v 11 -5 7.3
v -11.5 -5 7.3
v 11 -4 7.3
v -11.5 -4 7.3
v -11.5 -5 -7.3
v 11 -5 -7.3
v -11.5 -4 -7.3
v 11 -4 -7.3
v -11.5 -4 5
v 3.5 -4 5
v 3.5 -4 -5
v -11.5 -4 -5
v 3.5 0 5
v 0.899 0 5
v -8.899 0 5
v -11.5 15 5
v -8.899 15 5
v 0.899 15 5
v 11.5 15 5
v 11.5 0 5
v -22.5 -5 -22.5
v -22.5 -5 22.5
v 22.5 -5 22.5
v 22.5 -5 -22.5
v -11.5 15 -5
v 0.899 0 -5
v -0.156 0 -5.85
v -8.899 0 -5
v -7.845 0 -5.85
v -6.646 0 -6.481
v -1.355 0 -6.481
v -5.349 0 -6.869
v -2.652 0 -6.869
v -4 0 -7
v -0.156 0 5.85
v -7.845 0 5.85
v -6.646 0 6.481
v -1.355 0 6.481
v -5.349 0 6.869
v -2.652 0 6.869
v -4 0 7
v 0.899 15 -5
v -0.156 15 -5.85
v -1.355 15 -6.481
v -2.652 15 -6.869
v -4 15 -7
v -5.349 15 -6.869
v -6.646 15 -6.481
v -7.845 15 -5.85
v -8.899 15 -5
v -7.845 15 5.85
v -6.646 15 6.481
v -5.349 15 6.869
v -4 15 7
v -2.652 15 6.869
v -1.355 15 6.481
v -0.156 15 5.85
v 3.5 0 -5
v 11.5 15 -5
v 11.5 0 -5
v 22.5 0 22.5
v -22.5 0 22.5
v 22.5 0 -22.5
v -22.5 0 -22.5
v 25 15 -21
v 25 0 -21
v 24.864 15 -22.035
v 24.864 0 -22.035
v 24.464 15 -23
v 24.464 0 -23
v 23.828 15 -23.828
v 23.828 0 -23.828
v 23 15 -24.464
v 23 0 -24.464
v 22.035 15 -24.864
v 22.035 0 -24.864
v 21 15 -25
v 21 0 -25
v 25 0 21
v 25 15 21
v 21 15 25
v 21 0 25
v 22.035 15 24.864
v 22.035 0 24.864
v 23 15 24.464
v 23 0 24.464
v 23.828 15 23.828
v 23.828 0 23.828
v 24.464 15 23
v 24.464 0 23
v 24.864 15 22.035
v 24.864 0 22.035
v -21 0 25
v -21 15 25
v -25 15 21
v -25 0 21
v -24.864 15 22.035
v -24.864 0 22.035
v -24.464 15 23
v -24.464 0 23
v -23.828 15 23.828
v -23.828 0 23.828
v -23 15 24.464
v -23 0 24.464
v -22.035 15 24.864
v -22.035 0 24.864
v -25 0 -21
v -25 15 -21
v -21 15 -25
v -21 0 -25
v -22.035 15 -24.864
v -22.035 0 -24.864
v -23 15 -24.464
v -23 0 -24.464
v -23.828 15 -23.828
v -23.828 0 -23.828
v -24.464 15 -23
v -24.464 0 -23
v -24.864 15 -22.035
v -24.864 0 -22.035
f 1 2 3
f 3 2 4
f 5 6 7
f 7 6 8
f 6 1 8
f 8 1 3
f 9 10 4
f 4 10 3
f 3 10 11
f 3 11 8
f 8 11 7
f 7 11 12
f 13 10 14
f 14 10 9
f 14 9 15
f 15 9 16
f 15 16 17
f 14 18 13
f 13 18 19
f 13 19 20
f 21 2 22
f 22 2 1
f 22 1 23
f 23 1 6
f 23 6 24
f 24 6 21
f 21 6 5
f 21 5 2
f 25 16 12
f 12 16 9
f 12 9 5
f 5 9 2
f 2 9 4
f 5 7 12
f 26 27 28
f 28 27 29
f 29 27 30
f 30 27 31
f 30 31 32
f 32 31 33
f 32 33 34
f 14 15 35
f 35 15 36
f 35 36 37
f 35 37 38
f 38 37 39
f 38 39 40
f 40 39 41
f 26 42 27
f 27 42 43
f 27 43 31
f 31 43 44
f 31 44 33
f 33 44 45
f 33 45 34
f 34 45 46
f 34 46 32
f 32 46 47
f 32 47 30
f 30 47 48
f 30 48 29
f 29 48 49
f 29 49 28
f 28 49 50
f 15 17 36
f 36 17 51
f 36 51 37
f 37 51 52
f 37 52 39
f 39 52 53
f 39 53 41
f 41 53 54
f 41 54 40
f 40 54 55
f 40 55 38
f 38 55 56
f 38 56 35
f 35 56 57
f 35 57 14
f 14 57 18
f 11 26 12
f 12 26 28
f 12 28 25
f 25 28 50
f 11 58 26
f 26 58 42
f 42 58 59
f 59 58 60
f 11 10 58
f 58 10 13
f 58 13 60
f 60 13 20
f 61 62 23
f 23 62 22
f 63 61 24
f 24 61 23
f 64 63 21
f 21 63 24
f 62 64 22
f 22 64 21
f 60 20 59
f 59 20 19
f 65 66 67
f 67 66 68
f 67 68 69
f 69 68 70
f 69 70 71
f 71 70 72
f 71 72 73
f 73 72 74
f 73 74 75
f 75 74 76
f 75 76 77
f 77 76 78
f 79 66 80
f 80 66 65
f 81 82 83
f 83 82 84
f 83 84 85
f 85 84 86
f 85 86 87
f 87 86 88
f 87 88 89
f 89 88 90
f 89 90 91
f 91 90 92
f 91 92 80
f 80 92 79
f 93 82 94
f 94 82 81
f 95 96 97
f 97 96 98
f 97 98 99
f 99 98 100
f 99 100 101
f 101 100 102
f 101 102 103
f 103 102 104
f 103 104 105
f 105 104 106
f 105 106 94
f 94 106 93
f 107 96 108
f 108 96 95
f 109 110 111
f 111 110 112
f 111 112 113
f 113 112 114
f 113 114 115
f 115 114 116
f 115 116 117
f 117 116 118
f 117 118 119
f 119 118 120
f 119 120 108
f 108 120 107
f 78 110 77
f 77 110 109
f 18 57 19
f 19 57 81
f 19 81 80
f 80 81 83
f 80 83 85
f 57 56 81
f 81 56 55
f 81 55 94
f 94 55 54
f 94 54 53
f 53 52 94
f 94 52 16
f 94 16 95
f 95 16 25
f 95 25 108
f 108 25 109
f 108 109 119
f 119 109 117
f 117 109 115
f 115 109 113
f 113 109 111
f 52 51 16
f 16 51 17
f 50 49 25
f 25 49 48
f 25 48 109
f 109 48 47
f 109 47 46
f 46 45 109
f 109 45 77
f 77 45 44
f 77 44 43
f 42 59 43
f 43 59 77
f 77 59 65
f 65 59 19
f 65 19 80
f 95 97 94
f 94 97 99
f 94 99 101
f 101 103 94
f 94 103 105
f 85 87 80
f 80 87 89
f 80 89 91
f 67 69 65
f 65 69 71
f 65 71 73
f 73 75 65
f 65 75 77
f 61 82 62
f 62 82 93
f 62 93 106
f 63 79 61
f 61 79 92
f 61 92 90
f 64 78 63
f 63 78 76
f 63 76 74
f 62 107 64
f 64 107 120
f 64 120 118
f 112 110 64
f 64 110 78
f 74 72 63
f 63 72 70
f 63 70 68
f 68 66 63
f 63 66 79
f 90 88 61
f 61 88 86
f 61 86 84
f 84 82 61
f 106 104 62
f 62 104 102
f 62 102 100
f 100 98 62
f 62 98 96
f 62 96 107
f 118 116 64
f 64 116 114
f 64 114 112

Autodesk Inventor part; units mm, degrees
ref_plane "YZ Plane" through (0, 0, 0) normal (1, 0, 0) x (0, 1, 0)
ref_plane "XZ Plane" through (0, 0, 0) normal (0, 1, 0) x (-1, 0, 0)
ref_plane "XY Plane" through (0, 0, 0) normal (0, 0, 1) x (1, 0, 0)
sketch "Эскиз1" plane through (0, 0, 0) normal (0, 1, 0) x (-1, 0, 0)
  line L0 (-21, 25) -> (21, 25)
  line L1 (25, 21) -> (25, -21)
  line L2 (21, -25) -> (-21, -25)
  line L3 (-25, -21) -> (-25, 21)
  line L4 (-25, 25) -> (25, -25) construction
  line L5 (25, 25) -> (-25, -25) construction
  line L6 (-11.5, -5) -> (11.5, -5)
  line L7 (11.5, -5) -> (11.5, 5)
  line L8 (11.5, 5) -> (-11.5, 5)
  line L9 (-11.5, 5) -> (-11.5, -5)
  line L10 (-11.5, -5) -> (11.5, 5) construction
  line L11 (11.5, -5) -> (-11.5, 5) construction
  line L12 (-3.5, 5) -> (-3.5, -5)
  line L13 (4, 5) -> (4, -5) construction
  circle A0 centre (4, 0) radius 7.25
  arc A1 (21, -25) -> (25, -21) centre (21, -21) ccw
  arc A2 (25, 21) -> (21, 25) centre (21, 21) ccw
  arc A3 (-21, 25) -> (-25, 21) centre (-21, 21) ccw
  arc A4 (-25, -21) -> (-21, -25) centre (-21, -21) ccw
  point P0 (0, 0)
  point P1 (-1.25, -5)
  point P2 (-1.25, 5)
  dimension "d0" = 50
  dimension "d1" = 50
  dimension "d2" = 23
  dimension "d3" = 10
  dimension "d4" = 8
  dimension "d29" = 7.5
  dimension "d30" = 14.5
  dimension "d52" = 4
extrude "Выдавливание13" add sketch "Эскиз1" along normal blind 15 contours L0 A2 L1 A1 L2 A4 L3 A3 | L6 A0 | A0 L8
sketch "Эскиз6" plane through (0, 0, 0) normal (0, -1, 0) x (1, 0, 0)
  line L0 (22.5, 22.5) -> (-22.5, 22.5)
  line L1 (-22.5, 22.5) -> (-22.5, -22.5)
  line L2 (-22.5, -22.5) -> (22.5, -22.5)
  line L3 (22.5, -22.5) -> (22.5, 22.5)
  line L4 (22.5, 22.5) -> (-22.5, -22.5) construction
  line L5 (-22.5, 22.5) -> (22.5, -22.5) construction
  point P0 (0, 0)
  dimension "d41" = 45
  dimension "d42" = 45
extrude "Выдавливание14" add sketch "Эскиз6" along normal blind 5
extrude "Выдавливание15" cut sketch "Эскиз1" against normal through all contours L12 L8 A0 L6 | A0 L8 L6 | A0 L8 L7 L6
sketch "Эскиз7" plane through (0, 15, 0) normal (0, 1, 0) x (1, 0, 0)
  circle A0 centre (-4.0005, 0) radius 7
  line L0 (21, 25) -> (-21, 25) projected
  line L1 (-25, 21) -> (-25, -21) projected
  point P0 (0, 0)
  point P1 (25, 25)
  point P2 (-25, 25)
  point P3 (-25, -25)
  dimension "d47" = 14
  dimension "d48" = 25
  dimension "d49" = 20.9995
extrude "Выдавливание16" cut sketch "Эскиз7" against normal blind 15
sketch "Эскиз8" plane through (0, -5, 0) normal (0, -1, 0) x (1, 0, 0)
  point P0 (0, 0)
sketch "Эскиз9" plane through (0, -5, 0) normal (0, -1, 0) x (1, 0, 0)
  point P0 (0, 0)
sketch "Эскиз10" plane through (0, -5, 0) normal (0, -1, 0) x (1, 0, 0)
  line L0 (-11.5, -7.3) -> (11, -7.3)
  line L1 (11, -7.3) -> (11, 7.3)
  line L2 (11, 7.3) -> (-11.5, 7.3)
  line L3 (-11.5, 7.3) -> (-11.5, -7.3)
  point P0 (0, 0)
  dimension "d53" = 11.5
  dimension "d54" = 14.6
  dimension "d55" = 7.3
  dimension "d56" = 22.5
extrude "Выдавливание17" cut sketch "Эскиз10" against normal blind 1
properties part number "platform"
